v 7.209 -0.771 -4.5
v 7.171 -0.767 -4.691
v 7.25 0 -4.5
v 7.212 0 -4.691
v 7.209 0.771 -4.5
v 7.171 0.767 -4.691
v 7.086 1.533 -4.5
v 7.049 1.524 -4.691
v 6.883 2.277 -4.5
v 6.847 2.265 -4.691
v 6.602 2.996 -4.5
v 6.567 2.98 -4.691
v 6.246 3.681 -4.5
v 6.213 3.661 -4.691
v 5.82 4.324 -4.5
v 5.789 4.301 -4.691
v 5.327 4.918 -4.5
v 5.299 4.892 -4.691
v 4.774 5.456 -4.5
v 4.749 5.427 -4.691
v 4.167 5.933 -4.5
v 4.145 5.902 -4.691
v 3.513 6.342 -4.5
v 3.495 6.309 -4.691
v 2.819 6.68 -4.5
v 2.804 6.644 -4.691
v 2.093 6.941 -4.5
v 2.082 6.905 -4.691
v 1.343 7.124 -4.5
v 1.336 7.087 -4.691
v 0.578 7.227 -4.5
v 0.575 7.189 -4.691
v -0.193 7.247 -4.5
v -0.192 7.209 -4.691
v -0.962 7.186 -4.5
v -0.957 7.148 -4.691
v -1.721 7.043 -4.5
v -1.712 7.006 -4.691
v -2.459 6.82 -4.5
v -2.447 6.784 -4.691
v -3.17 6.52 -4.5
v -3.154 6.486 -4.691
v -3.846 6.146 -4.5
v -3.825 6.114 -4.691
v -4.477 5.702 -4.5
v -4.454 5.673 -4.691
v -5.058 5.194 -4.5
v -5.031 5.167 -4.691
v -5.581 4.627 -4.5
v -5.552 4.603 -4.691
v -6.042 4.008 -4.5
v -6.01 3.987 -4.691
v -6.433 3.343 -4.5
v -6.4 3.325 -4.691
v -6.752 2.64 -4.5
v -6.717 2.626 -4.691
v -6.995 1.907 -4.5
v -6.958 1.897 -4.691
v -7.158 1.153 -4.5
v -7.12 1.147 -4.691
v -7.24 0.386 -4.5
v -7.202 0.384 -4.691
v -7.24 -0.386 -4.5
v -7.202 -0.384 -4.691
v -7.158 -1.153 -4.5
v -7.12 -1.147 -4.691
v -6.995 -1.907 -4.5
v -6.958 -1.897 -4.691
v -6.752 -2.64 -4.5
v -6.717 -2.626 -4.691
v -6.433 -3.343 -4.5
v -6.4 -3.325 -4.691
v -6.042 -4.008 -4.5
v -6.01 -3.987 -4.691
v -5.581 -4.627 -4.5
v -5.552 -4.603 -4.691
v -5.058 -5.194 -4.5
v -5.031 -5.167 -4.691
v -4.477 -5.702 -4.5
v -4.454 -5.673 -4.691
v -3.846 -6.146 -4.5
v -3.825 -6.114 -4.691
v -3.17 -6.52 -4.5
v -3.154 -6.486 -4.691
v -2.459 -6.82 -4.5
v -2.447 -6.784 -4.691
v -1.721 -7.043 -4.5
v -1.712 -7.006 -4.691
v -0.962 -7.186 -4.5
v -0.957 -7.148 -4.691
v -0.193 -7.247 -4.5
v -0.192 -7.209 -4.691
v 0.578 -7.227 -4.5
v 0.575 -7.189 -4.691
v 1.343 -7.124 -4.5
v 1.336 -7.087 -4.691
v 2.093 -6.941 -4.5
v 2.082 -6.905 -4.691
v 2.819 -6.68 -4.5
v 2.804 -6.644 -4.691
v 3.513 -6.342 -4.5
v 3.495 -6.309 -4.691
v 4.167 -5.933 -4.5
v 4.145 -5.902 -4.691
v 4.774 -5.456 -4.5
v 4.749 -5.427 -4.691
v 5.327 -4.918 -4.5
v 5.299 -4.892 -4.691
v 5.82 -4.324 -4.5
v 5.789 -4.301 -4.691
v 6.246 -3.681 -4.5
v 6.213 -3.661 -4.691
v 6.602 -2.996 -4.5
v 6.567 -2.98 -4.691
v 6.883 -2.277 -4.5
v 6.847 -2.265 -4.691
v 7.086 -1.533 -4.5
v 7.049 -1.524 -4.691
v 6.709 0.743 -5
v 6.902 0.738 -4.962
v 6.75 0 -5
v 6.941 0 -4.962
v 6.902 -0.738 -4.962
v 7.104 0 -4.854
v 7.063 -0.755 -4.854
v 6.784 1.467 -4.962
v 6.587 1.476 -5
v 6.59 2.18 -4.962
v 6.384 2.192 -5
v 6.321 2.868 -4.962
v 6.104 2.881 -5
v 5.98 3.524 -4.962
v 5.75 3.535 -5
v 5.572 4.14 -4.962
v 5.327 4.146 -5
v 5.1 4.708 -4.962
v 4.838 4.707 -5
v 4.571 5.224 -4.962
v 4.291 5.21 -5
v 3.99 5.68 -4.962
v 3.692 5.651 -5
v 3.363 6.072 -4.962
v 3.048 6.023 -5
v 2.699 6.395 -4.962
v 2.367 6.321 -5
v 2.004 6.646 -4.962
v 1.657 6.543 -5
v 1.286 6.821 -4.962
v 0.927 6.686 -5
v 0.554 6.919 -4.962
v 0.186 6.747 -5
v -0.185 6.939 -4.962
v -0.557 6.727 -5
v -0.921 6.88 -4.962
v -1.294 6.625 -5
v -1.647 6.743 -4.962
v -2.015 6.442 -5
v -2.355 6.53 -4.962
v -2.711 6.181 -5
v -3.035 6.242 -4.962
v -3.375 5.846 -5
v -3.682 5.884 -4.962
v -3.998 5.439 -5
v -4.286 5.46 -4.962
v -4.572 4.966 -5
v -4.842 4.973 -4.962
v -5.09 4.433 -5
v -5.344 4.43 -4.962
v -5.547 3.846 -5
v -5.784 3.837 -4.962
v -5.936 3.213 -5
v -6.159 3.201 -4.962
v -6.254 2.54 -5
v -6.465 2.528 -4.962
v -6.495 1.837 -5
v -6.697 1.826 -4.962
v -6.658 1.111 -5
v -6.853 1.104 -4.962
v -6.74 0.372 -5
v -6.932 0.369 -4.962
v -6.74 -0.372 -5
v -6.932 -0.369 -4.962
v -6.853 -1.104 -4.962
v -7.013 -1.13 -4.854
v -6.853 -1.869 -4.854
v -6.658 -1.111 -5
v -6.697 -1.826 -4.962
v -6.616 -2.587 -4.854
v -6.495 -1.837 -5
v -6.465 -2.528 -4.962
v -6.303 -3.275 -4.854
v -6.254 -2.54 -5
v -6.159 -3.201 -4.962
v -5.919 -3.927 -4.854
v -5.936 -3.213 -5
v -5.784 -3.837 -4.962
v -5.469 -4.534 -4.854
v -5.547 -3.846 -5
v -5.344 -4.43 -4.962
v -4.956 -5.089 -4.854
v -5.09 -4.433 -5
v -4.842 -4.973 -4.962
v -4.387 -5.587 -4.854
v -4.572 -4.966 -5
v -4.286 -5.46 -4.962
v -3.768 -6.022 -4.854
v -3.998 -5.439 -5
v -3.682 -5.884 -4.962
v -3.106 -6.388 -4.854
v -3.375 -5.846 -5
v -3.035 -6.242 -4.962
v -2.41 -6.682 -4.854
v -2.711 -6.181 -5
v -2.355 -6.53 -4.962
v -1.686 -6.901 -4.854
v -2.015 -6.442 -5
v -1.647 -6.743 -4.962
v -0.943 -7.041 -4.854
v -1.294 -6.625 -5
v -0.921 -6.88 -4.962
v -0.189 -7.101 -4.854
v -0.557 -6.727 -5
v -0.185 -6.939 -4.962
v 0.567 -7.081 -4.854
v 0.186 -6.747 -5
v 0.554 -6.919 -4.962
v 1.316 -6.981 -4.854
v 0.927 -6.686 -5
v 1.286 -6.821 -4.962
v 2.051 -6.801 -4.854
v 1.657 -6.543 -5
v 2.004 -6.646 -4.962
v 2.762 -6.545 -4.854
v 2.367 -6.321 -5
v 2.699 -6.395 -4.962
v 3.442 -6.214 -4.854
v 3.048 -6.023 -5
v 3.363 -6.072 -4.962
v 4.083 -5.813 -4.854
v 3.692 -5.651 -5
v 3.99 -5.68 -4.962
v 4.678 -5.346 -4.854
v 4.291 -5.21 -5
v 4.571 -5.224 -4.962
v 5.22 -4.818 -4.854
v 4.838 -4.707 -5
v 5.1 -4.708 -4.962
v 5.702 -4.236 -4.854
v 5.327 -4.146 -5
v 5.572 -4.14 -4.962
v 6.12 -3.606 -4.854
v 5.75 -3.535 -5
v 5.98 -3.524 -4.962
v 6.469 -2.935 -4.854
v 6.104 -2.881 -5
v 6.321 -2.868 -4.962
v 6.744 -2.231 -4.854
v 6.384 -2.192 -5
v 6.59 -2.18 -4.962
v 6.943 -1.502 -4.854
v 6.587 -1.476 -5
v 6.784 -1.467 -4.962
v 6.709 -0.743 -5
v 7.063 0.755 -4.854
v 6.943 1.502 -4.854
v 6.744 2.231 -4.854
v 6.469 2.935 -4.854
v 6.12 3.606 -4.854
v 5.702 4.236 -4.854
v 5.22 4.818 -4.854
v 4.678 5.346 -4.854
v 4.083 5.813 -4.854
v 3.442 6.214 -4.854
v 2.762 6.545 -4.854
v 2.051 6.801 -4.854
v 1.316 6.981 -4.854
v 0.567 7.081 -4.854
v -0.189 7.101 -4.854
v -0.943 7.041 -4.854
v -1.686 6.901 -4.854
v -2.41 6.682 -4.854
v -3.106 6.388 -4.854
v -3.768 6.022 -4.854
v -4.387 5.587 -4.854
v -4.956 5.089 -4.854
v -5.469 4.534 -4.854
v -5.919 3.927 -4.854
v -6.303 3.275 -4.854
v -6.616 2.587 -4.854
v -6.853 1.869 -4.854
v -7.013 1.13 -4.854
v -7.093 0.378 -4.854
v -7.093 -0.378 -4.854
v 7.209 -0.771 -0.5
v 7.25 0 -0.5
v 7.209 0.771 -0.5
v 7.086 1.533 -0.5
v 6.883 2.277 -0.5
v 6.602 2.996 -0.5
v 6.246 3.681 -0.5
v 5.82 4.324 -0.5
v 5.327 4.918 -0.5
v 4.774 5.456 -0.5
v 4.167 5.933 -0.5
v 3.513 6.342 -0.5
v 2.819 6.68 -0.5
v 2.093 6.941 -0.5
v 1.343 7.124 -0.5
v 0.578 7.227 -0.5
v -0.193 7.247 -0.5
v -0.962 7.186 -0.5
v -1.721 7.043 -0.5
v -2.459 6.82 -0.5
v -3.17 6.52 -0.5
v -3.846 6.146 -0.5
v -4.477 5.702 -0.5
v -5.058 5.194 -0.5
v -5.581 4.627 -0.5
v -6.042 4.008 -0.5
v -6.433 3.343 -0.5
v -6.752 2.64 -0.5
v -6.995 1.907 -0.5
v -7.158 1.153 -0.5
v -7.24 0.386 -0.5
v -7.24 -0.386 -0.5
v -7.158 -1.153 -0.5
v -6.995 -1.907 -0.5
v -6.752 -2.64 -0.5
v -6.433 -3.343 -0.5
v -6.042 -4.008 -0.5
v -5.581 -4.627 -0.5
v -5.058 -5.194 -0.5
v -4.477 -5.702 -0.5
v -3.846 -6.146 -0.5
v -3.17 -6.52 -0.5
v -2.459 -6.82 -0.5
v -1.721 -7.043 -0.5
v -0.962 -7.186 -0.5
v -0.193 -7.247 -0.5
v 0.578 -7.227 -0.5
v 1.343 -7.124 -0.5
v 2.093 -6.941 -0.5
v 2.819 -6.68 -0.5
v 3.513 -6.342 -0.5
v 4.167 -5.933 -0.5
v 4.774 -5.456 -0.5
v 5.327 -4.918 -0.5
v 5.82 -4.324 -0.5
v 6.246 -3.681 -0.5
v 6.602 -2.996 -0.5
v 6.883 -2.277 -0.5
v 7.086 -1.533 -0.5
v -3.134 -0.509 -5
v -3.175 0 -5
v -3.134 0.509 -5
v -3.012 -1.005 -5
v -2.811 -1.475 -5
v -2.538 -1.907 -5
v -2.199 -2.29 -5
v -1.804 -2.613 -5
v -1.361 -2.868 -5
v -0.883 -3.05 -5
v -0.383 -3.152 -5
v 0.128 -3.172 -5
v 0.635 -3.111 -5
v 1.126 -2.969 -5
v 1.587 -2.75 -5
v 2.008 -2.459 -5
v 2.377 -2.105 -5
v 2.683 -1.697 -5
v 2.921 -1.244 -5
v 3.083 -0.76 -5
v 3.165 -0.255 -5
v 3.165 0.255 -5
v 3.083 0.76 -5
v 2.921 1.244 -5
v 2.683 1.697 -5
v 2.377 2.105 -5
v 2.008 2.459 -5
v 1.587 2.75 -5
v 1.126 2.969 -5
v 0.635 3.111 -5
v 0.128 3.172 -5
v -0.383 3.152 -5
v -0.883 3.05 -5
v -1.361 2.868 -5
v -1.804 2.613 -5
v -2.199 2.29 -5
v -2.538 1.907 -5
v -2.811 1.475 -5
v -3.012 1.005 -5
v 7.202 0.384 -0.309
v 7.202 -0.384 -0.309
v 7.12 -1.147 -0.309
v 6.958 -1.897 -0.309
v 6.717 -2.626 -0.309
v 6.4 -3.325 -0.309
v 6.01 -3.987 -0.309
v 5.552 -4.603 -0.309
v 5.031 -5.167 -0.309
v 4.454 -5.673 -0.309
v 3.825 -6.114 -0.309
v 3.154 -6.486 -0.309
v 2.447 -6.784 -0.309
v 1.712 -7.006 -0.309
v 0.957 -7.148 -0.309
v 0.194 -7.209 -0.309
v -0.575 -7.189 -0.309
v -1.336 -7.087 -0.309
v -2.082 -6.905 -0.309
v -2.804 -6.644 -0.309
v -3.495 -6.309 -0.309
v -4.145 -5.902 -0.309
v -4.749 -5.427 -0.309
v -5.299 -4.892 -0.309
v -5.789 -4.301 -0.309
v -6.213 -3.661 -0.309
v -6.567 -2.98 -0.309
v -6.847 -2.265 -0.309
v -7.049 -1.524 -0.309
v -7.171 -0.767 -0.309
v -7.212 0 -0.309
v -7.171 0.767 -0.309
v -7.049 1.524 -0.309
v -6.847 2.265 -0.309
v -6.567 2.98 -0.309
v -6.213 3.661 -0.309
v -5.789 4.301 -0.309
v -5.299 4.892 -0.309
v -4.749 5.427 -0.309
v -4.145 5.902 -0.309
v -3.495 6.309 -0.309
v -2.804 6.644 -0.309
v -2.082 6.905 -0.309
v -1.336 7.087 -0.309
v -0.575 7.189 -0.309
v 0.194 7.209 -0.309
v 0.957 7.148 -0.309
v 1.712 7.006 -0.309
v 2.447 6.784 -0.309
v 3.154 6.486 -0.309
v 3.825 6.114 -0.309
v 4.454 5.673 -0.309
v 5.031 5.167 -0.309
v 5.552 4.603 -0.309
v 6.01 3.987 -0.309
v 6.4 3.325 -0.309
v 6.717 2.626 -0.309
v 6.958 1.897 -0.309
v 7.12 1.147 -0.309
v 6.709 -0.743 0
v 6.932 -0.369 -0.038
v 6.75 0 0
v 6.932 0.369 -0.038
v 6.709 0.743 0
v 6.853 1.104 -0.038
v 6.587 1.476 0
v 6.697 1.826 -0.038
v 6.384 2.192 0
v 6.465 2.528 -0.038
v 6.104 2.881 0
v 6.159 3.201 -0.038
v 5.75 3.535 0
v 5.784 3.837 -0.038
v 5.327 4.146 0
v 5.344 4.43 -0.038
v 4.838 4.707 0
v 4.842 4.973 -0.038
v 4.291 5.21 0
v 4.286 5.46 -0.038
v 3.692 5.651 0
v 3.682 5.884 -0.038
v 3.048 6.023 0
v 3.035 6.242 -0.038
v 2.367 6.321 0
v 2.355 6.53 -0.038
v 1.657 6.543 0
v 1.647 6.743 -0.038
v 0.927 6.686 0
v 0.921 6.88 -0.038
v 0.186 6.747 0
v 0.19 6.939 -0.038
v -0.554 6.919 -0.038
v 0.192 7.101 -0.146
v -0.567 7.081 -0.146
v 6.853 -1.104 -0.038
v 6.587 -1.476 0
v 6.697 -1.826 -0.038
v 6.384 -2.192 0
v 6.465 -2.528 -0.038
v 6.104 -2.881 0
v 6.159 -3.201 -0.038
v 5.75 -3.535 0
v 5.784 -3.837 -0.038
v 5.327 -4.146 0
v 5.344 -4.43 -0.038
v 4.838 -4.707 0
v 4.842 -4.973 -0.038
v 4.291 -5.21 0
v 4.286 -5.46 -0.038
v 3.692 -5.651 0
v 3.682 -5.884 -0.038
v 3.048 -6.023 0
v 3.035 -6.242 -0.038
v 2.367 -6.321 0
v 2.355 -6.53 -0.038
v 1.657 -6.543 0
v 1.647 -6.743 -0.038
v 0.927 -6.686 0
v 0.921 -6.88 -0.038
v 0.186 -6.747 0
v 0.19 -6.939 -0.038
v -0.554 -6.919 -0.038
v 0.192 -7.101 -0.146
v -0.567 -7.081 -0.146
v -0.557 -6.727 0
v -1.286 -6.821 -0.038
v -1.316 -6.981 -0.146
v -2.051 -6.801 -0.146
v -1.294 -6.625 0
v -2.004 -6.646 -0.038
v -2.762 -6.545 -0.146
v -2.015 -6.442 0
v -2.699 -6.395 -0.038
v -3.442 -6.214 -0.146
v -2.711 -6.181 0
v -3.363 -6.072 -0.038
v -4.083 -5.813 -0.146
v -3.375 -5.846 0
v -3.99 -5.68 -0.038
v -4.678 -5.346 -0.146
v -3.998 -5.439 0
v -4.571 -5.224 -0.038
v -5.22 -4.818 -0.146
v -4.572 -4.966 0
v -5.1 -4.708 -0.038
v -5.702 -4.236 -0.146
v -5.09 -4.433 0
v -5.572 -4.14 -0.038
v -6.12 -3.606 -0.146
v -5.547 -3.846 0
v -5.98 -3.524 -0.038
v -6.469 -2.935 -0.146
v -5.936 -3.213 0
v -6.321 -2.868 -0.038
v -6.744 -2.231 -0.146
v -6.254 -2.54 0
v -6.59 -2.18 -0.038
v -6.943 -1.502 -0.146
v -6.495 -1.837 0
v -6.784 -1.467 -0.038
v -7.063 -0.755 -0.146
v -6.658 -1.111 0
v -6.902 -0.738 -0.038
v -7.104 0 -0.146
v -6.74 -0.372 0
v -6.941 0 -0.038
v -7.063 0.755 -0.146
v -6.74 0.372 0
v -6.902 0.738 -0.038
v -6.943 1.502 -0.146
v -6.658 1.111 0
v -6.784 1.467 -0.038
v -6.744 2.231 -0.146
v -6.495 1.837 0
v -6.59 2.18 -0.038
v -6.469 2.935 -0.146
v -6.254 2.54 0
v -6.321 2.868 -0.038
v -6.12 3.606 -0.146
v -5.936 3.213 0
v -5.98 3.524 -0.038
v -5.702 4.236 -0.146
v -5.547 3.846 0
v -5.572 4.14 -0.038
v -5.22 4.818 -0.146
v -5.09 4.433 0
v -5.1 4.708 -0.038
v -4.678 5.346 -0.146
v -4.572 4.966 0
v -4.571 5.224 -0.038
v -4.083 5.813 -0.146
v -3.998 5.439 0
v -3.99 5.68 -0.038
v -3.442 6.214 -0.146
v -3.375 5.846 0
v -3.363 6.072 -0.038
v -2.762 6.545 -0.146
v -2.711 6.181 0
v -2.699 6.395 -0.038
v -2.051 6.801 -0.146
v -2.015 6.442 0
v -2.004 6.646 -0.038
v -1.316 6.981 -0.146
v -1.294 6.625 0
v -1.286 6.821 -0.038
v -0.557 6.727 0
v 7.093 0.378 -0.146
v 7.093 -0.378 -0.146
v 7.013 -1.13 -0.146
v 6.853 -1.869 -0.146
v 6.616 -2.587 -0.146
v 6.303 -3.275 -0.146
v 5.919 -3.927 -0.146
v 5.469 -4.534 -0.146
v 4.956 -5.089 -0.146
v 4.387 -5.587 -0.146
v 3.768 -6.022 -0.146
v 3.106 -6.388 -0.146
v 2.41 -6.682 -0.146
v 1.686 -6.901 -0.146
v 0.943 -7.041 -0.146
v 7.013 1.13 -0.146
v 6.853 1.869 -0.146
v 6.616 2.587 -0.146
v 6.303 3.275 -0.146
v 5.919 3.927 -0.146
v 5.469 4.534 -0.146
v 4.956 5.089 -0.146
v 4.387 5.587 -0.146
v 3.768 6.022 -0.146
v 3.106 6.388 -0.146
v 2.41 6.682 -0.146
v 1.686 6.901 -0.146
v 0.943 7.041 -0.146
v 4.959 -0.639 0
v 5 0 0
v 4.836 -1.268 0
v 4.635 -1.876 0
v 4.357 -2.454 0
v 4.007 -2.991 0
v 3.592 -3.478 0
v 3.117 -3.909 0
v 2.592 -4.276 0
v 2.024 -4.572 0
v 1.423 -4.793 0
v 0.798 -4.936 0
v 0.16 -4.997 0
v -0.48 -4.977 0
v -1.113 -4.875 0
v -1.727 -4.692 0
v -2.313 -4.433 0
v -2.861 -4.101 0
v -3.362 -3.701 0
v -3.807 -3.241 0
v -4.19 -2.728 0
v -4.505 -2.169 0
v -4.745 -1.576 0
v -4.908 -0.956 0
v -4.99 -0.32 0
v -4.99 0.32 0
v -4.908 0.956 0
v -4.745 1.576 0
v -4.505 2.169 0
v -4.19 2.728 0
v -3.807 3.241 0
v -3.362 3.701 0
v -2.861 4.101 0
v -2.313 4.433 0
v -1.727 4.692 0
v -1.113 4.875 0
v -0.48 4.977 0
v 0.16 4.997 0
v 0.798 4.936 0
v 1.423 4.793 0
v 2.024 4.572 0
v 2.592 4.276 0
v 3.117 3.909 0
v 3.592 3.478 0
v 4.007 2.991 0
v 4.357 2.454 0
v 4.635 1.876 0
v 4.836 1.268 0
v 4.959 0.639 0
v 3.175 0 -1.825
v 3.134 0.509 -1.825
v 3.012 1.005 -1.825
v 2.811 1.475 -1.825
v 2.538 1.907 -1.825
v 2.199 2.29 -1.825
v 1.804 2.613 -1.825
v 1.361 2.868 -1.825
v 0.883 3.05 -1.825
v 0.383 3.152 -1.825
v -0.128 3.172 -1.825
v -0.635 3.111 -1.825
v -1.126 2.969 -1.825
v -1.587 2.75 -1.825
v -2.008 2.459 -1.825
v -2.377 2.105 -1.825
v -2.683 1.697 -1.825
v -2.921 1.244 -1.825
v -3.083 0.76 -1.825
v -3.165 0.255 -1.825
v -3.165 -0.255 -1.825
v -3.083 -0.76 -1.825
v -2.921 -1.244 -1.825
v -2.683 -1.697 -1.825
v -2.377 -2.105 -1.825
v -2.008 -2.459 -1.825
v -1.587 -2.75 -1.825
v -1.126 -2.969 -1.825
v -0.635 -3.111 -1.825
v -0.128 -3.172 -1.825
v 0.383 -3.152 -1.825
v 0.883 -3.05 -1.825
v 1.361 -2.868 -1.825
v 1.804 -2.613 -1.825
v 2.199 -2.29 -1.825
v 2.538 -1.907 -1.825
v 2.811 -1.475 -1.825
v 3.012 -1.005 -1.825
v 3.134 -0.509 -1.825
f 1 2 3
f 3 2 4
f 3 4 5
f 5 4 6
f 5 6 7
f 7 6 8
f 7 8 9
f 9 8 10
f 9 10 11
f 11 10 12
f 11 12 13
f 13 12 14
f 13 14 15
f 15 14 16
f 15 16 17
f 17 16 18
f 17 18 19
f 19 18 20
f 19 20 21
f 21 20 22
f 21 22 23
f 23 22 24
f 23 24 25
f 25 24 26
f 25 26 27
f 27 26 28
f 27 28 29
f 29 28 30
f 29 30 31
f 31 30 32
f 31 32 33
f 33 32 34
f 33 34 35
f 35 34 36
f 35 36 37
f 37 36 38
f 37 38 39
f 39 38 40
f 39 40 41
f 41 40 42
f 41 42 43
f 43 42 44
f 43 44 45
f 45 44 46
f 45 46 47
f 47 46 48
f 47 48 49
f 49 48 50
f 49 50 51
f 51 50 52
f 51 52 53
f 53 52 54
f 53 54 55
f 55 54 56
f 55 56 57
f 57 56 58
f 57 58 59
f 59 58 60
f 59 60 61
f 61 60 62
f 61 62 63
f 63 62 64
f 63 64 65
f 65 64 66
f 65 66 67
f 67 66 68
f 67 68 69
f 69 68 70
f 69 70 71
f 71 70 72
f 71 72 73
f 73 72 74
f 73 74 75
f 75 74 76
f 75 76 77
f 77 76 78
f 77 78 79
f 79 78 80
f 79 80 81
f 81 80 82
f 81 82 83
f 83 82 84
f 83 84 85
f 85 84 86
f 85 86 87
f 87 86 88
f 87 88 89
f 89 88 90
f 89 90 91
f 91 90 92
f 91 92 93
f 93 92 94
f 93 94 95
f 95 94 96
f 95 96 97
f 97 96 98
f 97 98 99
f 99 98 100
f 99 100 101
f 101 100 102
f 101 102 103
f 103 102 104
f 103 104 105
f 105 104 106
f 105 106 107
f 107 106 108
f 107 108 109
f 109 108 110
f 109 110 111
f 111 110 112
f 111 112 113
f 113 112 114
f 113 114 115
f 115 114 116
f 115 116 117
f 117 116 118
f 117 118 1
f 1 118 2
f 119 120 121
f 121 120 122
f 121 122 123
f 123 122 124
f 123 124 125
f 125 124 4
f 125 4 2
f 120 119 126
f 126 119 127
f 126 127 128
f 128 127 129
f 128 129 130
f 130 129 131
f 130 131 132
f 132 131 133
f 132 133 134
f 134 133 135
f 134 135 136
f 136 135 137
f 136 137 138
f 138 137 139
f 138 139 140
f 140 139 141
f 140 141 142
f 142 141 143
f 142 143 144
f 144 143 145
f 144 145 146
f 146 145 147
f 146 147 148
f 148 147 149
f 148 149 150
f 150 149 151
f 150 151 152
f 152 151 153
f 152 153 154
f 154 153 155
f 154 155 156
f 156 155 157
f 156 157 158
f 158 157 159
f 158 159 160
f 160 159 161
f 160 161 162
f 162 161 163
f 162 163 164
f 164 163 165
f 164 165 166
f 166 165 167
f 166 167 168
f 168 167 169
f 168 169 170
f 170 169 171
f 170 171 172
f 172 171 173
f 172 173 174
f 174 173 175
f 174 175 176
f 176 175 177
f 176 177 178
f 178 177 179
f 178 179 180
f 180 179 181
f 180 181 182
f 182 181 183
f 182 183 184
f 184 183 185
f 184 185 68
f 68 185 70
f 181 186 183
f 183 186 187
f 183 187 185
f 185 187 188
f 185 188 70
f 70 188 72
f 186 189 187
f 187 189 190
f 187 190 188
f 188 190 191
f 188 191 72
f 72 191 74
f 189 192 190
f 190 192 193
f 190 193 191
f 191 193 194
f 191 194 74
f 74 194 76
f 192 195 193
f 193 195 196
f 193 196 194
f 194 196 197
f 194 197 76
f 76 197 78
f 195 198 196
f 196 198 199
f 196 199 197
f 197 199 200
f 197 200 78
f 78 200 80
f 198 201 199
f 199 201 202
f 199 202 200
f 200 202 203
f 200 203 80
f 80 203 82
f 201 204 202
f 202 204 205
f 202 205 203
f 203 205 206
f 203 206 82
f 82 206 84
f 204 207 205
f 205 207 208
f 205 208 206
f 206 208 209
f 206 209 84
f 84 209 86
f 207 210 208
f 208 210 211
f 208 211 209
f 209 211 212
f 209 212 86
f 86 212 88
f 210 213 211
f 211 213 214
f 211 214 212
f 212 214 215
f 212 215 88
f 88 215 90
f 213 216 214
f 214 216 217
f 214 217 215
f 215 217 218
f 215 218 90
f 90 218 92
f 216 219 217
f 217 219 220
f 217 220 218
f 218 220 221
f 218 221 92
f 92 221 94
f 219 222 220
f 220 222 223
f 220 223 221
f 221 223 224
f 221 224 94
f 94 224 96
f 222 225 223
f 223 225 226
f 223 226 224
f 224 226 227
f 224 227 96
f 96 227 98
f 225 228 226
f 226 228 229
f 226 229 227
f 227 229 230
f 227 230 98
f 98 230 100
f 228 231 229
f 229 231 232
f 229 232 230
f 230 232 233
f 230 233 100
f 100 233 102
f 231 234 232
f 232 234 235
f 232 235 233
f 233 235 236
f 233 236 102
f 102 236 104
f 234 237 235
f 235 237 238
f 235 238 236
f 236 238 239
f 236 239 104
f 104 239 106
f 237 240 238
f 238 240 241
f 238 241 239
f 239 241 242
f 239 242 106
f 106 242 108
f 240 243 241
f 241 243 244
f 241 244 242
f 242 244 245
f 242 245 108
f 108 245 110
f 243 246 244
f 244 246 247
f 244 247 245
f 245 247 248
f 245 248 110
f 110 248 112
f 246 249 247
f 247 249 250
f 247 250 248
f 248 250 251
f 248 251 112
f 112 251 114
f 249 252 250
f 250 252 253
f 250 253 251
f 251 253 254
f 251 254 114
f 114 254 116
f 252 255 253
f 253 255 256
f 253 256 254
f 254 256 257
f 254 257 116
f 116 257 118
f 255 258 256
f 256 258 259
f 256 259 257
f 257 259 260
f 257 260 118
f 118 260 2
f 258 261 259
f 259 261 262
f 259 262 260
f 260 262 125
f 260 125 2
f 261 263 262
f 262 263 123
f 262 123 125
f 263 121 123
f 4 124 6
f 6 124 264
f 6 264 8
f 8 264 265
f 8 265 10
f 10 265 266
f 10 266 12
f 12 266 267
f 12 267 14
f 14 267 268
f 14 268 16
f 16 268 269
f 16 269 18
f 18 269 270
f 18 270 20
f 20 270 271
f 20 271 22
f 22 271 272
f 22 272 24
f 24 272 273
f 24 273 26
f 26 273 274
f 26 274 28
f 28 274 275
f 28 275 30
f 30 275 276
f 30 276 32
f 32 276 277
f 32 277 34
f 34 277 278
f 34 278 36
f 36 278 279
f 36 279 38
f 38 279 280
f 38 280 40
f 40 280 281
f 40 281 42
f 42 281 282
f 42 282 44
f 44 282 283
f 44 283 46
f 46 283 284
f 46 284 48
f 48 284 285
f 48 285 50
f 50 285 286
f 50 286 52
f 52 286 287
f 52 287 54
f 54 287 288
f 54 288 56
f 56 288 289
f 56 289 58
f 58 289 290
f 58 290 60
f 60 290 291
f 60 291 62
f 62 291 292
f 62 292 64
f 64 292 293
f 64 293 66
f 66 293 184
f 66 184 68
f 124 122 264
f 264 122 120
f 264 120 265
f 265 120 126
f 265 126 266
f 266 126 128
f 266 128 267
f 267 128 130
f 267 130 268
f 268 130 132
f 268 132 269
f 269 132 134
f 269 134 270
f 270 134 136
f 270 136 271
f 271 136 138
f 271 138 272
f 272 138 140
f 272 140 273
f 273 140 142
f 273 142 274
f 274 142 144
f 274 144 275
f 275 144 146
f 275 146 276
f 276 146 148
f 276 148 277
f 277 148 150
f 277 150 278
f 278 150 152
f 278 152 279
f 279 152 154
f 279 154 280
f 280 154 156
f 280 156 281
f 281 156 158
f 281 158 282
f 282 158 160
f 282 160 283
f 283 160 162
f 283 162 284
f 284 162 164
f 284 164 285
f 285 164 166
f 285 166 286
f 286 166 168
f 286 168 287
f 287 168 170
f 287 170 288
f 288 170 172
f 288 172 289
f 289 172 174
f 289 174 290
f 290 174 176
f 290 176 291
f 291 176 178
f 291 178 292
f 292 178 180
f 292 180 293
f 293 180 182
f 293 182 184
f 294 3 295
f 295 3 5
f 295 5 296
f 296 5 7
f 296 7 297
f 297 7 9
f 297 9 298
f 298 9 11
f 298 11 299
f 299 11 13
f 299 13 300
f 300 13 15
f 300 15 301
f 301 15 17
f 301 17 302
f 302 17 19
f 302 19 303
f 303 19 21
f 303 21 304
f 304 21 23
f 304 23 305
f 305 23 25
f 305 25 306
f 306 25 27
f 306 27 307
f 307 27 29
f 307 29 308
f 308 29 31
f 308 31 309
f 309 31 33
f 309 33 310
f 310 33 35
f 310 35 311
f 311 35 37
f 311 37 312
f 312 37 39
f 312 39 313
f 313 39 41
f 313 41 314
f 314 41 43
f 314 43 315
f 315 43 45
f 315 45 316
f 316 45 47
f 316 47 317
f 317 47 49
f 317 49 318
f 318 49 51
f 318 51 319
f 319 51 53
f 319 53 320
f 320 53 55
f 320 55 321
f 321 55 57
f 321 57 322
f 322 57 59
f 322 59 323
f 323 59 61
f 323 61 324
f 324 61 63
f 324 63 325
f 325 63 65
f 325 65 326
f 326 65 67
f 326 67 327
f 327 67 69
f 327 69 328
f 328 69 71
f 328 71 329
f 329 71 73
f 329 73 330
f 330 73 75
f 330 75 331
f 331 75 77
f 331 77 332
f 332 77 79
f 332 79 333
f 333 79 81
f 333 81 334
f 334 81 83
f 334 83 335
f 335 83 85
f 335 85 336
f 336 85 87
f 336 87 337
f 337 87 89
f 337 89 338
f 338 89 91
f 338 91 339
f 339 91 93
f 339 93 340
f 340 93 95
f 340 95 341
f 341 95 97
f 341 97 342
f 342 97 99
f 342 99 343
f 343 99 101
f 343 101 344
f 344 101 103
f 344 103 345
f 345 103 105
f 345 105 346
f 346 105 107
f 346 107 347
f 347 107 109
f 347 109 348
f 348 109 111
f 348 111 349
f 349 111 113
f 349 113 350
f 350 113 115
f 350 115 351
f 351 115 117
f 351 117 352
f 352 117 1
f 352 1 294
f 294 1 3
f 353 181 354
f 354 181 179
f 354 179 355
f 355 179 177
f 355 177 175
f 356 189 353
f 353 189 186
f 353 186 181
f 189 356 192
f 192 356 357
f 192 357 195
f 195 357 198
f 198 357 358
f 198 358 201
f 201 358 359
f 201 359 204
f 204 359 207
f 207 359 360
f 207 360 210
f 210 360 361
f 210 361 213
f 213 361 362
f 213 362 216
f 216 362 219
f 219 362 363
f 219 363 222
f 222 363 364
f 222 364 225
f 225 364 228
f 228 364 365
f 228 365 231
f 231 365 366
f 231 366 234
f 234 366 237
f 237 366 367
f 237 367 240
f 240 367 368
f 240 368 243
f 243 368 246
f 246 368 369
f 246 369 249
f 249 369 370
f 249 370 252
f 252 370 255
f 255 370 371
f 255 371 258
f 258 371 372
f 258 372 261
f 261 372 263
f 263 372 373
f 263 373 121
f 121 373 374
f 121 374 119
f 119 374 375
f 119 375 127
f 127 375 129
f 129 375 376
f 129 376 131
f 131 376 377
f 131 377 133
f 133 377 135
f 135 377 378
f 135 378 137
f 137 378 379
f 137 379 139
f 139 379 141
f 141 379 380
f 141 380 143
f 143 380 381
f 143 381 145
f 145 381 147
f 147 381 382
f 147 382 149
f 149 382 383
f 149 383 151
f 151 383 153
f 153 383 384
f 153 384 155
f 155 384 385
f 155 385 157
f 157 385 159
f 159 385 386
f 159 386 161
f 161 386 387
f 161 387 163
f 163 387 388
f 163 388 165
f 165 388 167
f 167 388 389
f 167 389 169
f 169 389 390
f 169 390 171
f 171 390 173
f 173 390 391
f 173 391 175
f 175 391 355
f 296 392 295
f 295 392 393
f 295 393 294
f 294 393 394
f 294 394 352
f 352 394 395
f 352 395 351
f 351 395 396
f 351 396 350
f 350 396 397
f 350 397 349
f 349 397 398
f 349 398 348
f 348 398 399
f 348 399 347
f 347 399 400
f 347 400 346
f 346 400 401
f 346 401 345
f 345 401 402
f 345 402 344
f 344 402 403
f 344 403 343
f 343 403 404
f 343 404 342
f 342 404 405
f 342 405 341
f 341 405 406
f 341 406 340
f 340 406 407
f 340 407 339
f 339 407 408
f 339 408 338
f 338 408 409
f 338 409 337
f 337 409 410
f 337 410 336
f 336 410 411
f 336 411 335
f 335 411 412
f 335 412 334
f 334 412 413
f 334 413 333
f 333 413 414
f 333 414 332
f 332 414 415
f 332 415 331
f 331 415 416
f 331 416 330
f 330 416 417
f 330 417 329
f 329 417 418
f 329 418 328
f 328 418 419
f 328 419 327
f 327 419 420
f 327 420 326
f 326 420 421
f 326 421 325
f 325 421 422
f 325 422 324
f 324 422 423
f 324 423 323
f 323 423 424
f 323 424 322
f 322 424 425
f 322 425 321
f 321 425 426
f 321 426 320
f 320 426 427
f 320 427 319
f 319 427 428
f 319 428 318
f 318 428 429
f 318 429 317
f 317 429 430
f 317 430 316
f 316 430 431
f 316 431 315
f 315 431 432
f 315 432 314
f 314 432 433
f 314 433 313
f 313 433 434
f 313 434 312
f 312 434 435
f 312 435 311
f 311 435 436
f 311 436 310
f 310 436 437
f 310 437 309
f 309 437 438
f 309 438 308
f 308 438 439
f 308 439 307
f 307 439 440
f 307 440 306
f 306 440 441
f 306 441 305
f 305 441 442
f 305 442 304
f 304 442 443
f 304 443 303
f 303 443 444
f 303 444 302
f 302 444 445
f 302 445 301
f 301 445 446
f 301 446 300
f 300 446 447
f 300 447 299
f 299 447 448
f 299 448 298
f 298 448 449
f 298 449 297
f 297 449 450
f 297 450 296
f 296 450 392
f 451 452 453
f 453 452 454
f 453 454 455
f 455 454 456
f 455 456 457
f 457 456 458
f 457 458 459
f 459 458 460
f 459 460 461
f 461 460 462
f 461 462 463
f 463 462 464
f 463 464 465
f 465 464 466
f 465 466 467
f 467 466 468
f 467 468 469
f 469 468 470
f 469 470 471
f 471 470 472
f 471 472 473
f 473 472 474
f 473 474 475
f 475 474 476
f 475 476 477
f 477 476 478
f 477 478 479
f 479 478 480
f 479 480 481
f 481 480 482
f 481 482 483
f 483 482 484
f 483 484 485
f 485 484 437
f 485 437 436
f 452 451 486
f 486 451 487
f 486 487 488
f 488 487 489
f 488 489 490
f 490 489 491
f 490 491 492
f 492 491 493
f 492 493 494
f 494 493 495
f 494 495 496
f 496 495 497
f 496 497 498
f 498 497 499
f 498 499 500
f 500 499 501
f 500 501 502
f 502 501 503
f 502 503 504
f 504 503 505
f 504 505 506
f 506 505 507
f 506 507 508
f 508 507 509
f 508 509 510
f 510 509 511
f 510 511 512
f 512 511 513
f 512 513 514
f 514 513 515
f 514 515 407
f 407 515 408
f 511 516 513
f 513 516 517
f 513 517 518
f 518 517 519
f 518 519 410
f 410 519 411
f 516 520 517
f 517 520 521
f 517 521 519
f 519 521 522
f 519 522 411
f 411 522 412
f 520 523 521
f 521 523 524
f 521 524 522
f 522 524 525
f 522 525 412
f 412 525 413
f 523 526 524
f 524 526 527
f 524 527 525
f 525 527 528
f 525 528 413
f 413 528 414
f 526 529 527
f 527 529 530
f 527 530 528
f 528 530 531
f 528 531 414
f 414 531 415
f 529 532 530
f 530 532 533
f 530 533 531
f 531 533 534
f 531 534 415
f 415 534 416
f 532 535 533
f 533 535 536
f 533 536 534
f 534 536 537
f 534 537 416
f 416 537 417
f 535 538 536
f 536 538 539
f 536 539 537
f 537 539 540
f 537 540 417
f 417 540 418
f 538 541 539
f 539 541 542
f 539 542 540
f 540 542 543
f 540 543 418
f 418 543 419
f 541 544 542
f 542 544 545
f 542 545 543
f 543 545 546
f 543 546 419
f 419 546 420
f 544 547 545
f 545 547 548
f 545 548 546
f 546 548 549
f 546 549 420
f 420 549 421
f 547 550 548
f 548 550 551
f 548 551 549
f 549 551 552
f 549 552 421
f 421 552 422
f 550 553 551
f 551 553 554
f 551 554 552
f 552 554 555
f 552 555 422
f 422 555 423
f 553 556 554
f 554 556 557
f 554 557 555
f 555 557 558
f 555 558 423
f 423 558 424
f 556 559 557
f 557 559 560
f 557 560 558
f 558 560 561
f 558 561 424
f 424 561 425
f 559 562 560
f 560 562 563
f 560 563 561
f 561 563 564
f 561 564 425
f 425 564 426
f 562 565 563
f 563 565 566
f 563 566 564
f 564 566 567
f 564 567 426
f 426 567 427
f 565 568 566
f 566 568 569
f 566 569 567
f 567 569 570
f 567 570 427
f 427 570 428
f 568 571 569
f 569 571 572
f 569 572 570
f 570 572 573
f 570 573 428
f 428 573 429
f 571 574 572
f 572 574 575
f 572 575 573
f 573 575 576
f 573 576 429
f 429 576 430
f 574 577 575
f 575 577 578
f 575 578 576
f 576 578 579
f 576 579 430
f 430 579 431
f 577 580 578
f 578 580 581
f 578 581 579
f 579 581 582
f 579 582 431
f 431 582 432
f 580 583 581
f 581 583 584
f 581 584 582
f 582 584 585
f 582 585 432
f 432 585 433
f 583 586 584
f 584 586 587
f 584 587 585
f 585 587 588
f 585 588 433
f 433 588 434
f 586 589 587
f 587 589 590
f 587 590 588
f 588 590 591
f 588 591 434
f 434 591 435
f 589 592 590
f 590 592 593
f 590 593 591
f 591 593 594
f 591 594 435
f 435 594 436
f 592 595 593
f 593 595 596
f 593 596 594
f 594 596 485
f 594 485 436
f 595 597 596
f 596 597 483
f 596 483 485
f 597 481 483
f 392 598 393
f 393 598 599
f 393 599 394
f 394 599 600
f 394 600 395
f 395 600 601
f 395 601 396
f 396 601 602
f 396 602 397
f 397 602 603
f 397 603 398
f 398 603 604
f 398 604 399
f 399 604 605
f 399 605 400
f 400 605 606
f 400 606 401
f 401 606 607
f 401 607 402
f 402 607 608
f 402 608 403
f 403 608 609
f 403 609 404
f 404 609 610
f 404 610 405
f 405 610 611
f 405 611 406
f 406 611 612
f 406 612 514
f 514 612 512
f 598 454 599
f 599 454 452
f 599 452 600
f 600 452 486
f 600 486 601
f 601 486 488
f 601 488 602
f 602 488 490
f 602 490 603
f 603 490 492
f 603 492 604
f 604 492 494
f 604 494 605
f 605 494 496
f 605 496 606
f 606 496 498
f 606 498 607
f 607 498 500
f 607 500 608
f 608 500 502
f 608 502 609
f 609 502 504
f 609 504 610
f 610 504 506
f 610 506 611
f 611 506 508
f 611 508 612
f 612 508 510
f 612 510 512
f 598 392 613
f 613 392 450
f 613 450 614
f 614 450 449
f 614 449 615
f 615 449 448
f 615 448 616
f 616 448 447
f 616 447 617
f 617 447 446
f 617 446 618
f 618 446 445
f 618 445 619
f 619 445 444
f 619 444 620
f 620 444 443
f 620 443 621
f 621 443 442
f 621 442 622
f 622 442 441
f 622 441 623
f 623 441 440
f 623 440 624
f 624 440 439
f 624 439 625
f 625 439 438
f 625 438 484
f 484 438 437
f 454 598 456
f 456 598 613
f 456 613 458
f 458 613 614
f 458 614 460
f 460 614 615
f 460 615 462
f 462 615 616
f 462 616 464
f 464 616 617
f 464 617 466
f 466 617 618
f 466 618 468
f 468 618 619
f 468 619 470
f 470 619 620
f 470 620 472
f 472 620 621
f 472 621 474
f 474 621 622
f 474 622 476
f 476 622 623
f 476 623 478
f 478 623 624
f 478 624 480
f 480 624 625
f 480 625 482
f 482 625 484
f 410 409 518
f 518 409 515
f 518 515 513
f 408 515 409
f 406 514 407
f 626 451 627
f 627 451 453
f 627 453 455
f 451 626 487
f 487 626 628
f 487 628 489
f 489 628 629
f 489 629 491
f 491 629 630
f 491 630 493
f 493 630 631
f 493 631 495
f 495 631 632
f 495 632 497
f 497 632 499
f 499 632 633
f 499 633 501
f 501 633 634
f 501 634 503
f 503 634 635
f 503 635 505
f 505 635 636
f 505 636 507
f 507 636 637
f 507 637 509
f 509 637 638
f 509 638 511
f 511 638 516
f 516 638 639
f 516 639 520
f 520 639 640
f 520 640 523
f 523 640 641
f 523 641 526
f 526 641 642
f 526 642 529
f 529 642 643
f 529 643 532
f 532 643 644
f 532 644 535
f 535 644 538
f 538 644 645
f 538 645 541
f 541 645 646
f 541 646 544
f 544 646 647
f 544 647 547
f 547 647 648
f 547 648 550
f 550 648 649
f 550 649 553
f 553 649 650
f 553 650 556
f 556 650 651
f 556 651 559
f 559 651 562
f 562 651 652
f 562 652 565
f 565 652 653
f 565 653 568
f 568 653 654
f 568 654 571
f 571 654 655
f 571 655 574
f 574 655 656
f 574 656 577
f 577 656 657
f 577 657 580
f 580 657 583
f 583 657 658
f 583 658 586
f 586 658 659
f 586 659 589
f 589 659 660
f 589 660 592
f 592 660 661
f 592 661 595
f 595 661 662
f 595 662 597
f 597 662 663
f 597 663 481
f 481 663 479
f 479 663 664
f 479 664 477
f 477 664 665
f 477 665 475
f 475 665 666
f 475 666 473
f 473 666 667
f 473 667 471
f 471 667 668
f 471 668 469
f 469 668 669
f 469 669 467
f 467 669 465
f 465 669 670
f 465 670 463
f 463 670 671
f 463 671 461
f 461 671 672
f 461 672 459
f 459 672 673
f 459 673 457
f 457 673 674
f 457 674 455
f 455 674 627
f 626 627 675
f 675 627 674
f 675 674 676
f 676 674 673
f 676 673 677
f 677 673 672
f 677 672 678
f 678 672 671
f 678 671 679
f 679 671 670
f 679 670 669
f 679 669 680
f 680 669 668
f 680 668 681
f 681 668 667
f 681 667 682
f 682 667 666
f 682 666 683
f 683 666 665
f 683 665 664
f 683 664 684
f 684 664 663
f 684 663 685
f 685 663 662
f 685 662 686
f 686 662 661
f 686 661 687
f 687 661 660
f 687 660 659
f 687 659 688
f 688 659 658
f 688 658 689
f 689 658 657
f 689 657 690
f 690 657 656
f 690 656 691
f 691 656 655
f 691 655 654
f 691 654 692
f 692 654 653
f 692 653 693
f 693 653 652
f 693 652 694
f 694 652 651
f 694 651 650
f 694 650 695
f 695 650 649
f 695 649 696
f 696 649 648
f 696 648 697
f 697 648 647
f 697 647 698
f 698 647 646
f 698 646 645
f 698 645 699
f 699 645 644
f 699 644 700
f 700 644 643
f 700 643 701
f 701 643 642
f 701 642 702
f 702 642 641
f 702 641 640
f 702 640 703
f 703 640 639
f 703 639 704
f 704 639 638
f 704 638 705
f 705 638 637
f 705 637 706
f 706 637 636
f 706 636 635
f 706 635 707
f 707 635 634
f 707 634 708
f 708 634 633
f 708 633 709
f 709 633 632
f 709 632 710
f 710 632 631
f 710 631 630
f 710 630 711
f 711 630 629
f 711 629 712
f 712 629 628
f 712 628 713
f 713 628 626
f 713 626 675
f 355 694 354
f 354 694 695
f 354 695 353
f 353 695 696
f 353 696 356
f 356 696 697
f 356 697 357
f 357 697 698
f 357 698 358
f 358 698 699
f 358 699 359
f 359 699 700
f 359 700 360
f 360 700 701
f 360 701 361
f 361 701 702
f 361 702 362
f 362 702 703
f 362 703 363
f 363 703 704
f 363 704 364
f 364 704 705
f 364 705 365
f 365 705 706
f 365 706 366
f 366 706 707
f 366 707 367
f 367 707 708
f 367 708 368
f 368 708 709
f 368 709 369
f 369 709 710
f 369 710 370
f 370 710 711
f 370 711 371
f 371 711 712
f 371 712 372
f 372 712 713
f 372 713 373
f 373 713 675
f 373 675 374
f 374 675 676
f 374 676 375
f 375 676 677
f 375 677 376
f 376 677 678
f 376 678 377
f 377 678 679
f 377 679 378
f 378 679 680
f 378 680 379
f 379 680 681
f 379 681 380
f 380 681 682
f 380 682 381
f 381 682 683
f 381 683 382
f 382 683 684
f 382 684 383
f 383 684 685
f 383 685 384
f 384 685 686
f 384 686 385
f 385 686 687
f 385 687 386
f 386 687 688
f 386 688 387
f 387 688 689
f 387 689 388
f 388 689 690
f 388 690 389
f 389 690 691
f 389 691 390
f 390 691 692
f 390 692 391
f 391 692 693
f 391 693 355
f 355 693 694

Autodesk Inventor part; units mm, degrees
ref_plane "YZ Plane" through (0, 0, 0) normal (1, 0, 0) x (0, 1, 0)
ref_plane "XZ Plane" through (0, 0, 0) normal (0, 1, 0) x (-1, 0, 0)
ref_plane "XY Plane" through (0, 0, 0) normal (0, 0, 1) x (1, 0, 0)
sketch "Sketch1" plane through (0, 0, 0) normal (0, 0, 1) x (1, 0, 0)
  circle A0 centre (0, 0) radius 7.25
  dimension "d0" = 14.5
extrude "Extrusion1" add sketch "Sketch1" against normal blind 5
hole "Hole1" at (0, 0, 0) direction (0, 0, -1) diameter 6.35 end through all countersink diameter 10 countersink angle 90
fillet "Fillet1" radius 0.5 2 edges at (-7.25, 0, 0) (-7.25, 0, -5)
properties part number "plate"
